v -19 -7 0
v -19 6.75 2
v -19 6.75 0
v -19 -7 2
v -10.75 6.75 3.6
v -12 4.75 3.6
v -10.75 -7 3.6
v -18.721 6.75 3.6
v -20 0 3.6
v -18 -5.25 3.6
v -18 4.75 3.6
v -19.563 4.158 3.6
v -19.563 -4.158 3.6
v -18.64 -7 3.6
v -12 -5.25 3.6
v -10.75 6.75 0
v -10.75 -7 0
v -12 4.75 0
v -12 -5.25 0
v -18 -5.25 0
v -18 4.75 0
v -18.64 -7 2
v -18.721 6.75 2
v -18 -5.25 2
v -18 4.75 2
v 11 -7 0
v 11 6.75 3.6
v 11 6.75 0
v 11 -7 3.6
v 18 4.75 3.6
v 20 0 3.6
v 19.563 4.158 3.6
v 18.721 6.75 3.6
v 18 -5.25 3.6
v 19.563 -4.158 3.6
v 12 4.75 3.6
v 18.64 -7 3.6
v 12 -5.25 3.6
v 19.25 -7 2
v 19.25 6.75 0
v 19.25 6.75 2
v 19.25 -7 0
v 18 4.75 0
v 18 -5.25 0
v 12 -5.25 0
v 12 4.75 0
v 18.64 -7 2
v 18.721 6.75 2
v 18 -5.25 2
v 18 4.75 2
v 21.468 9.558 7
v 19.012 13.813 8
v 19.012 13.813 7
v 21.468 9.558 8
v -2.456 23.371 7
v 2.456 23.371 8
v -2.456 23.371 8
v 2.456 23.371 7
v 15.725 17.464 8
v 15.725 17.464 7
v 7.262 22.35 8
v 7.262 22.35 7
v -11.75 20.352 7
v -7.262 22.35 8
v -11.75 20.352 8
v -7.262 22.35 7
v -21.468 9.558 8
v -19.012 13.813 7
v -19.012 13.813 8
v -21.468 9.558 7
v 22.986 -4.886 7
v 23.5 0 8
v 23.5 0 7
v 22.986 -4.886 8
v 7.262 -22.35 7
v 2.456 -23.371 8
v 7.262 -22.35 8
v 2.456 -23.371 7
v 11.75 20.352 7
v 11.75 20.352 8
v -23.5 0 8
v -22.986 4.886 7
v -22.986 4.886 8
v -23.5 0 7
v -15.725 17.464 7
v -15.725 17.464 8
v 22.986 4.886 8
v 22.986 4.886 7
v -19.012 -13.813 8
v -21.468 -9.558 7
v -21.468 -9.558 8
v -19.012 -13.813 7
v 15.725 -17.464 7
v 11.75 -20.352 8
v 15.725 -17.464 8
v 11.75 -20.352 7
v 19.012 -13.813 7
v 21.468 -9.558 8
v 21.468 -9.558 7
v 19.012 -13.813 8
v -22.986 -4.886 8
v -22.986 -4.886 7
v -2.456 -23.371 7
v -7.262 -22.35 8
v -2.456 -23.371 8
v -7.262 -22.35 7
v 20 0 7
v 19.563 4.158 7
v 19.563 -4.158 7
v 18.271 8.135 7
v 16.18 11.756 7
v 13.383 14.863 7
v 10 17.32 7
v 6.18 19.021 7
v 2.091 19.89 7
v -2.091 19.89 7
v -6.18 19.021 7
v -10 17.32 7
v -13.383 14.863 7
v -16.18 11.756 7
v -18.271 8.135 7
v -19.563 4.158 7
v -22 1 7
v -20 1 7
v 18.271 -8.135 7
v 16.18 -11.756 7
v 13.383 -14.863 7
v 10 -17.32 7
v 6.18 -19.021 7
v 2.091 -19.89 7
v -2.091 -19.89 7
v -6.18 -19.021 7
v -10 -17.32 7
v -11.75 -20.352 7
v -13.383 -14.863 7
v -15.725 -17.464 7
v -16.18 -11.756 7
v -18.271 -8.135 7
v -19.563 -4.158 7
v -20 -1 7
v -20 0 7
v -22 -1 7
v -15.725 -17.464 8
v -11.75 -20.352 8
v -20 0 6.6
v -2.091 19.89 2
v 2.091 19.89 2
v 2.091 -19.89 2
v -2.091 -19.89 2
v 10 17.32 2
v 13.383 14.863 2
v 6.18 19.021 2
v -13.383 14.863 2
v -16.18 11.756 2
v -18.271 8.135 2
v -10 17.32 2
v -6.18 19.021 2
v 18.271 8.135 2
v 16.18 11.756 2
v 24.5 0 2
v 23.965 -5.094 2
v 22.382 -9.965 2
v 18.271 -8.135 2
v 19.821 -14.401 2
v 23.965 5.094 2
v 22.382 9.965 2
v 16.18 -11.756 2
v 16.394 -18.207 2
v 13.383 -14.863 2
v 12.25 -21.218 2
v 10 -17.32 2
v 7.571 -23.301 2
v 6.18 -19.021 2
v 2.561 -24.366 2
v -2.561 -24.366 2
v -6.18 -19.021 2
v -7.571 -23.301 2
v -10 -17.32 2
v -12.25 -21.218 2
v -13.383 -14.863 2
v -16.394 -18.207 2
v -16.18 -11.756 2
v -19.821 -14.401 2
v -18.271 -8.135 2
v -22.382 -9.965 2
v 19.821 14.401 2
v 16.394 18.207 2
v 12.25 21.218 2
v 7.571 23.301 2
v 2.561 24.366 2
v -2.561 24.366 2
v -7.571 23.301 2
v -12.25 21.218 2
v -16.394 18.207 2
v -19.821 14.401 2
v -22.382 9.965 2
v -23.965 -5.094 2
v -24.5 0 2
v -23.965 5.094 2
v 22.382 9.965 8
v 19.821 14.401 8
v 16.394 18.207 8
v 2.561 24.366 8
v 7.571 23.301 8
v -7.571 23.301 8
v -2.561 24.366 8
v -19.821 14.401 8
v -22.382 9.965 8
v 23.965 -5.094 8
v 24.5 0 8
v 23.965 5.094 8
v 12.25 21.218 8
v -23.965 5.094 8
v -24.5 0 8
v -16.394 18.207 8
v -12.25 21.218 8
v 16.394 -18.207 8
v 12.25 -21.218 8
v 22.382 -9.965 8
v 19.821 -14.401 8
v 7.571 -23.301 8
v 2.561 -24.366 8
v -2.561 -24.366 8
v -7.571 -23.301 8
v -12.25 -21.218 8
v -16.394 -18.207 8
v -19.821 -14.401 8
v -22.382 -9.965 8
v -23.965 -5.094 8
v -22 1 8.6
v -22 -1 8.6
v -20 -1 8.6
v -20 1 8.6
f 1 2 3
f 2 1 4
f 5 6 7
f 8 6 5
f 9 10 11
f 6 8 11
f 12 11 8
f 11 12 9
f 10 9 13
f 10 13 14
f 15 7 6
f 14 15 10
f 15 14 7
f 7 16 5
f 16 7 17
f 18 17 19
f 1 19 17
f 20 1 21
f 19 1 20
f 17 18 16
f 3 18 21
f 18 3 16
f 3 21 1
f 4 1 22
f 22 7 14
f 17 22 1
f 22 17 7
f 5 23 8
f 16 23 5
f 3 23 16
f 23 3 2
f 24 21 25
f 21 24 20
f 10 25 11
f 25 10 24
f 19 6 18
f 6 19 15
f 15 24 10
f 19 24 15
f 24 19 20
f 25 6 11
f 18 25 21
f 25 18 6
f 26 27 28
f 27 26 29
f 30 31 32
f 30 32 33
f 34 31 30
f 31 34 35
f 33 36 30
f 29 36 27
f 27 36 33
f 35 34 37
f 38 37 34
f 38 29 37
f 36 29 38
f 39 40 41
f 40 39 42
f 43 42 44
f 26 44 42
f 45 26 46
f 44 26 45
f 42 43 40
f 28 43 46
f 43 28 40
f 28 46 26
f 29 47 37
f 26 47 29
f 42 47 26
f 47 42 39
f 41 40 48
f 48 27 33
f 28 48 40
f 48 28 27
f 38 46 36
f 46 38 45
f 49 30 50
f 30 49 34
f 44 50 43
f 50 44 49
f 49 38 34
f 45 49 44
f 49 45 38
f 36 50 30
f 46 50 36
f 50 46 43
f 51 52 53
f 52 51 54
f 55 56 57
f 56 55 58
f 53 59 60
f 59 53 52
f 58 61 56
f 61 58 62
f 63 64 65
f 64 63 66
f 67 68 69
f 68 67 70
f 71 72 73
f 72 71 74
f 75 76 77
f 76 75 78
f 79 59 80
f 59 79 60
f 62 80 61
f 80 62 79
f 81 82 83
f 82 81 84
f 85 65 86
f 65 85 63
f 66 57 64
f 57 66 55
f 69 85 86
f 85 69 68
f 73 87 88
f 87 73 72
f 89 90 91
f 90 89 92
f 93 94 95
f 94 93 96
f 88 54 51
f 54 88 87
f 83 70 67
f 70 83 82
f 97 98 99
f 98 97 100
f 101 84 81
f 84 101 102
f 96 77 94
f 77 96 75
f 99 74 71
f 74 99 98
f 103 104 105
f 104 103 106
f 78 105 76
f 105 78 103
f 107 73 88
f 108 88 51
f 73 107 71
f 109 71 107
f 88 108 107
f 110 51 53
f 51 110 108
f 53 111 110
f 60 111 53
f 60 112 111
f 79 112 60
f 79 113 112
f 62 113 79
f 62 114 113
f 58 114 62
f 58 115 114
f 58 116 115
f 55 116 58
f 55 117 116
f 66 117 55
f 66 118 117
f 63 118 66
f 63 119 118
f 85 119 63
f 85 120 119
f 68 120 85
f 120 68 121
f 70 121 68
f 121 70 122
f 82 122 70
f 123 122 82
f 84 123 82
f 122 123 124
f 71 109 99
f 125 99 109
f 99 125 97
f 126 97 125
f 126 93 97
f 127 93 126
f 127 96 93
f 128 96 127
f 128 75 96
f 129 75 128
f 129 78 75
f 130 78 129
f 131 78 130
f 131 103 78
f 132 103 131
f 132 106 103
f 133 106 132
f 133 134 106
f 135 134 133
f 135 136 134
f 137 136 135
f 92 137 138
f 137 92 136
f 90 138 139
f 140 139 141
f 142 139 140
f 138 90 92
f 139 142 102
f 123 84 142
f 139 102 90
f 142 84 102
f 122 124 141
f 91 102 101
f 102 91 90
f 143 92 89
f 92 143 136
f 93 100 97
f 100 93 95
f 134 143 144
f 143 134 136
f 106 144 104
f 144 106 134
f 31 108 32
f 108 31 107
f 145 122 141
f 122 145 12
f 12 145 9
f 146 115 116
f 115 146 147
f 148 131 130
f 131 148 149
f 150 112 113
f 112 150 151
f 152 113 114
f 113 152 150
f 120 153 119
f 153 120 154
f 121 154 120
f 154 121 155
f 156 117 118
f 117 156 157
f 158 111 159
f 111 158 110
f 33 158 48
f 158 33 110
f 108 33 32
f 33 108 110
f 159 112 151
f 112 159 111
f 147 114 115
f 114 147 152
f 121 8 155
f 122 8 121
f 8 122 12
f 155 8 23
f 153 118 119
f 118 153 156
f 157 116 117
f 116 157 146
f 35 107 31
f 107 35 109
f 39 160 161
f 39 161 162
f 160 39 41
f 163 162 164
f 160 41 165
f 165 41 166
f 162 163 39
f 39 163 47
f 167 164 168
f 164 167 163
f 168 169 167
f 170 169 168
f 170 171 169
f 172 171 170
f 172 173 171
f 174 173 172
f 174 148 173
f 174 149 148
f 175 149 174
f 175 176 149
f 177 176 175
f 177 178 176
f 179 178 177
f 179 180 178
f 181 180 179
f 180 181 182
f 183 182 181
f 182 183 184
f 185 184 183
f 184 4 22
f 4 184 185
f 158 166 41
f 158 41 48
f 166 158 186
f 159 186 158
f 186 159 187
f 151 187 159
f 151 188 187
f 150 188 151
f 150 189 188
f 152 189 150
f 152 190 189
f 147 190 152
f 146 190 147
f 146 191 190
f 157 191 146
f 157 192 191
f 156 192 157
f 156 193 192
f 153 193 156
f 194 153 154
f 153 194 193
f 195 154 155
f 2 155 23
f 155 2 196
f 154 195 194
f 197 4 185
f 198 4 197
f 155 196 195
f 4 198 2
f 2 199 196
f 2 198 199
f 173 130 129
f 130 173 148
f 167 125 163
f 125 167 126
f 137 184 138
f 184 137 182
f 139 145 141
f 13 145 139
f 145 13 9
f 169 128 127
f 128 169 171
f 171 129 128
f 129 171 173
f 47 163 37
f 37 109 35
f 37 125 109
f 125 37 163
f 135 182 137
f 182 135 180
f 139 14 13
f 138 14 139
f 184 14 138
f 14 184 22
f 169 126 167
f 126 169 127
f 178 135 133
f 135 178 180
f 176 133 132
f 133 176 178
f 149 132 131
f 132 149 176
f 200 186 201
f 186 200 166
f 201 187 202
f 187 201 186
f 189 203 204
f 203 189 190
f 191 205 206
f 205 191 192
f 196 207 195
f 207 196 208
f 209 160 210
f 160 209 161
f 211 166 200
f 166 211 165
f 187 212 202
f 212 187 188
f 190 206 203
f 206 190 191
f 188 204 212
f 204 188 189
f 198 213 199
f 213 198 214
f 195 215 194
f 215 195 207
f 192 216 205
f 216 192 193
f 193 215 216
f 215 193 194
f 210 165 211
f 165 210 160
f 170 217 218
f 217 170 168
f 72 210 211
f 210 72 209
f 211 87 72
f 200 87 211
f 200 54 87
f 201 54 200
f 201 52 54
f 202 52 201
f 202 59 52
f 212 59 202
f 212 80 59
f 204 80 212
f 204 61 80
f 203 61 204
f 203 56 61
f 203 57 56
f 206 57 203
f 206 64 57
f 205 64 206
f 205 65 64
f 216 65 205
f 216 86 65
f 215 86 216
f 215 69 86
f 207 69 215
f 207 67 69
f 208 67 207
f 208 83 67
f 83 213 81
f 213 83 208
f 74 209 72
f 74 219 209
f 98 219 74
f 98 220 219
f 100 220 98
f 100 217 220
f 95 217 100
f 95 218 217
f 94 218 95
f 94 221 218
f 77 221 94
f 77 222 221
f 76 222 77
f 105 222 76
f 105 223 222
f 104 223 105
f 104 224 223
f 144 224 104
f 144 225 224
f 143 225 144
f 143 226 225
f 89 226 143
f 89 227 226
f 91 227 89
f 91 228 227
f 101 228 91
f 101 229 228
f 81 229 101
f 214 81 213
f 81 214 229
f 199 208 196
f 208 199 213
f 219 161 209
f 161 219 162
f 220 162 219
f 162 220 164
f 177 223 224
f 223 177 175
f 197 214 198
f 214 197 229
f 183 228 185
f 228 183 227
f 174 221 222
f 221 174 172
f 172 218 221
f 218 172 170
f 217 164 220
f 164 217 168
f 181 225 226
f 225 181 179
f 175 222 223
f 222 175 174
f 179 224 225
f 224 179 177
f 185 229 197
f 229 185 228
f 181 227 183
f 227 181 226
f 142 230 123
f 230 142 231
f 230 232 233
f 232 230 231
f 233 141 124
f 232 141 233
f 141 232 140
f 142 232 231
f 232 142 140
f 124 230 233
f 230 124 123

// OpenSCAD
/* Defines a mounting assembly for a Cirque
circular trackpad:
https://www.cirque.com/glidepoint-circle-trackpads

This is designed for the TM040040 device which
has a 40mm diameter.
*/

// 6mm is just within the vertical travel range
// of a cherry mx keyswitch.  Any taller and we
// risk the "M" and SPC key caps being obstructed
// by this mount when pressed.
// If you are using the 35mm trackpad you
// can affort to make this taller.
height = 6;

union(){
    translate([0,0,2]) {
        union() {
            difference() {
                // outer cylinder
                cylinder(height, 24.5, 24.5);
                union() {
                    // shelve / lip
                    translate([0,0,height-1]) {
                        cylinder(2, 23.5, 23.5);
                    }
                    // the inner cylinder
                    cylinder(height, 20, 20);
                }
            }
            // lug
            translate([-22,-1,height-1.4]) {
                cube(2);
            }
            
            // subtract the inside: left mounting rect
            translate([-21,-7,0]) {
                cube([3,13.5,1.6]);
            }
            
            // subtract the inside: right mounting rect
            translate([18,-7,0]) {
                cube([3,13.5,1.6]);
            }
        }
    }
    // left mounting rectangle
    translate([-19,-7,0]) {
        difference() {
            cube([8.25,13.75,3.6]);
            translate([1, 1.75, 0]) {
                cube([6,10,3.6]);
            }
        }
    }
    // right mounting rectangle
    translate([11,-7,0]) {
        difference() {
            cube([8.25,13.75,3.6]);
            translate([1, 1.75, 0]) {
                cube([6,10,3.6]);
            }
        }
    }
}
